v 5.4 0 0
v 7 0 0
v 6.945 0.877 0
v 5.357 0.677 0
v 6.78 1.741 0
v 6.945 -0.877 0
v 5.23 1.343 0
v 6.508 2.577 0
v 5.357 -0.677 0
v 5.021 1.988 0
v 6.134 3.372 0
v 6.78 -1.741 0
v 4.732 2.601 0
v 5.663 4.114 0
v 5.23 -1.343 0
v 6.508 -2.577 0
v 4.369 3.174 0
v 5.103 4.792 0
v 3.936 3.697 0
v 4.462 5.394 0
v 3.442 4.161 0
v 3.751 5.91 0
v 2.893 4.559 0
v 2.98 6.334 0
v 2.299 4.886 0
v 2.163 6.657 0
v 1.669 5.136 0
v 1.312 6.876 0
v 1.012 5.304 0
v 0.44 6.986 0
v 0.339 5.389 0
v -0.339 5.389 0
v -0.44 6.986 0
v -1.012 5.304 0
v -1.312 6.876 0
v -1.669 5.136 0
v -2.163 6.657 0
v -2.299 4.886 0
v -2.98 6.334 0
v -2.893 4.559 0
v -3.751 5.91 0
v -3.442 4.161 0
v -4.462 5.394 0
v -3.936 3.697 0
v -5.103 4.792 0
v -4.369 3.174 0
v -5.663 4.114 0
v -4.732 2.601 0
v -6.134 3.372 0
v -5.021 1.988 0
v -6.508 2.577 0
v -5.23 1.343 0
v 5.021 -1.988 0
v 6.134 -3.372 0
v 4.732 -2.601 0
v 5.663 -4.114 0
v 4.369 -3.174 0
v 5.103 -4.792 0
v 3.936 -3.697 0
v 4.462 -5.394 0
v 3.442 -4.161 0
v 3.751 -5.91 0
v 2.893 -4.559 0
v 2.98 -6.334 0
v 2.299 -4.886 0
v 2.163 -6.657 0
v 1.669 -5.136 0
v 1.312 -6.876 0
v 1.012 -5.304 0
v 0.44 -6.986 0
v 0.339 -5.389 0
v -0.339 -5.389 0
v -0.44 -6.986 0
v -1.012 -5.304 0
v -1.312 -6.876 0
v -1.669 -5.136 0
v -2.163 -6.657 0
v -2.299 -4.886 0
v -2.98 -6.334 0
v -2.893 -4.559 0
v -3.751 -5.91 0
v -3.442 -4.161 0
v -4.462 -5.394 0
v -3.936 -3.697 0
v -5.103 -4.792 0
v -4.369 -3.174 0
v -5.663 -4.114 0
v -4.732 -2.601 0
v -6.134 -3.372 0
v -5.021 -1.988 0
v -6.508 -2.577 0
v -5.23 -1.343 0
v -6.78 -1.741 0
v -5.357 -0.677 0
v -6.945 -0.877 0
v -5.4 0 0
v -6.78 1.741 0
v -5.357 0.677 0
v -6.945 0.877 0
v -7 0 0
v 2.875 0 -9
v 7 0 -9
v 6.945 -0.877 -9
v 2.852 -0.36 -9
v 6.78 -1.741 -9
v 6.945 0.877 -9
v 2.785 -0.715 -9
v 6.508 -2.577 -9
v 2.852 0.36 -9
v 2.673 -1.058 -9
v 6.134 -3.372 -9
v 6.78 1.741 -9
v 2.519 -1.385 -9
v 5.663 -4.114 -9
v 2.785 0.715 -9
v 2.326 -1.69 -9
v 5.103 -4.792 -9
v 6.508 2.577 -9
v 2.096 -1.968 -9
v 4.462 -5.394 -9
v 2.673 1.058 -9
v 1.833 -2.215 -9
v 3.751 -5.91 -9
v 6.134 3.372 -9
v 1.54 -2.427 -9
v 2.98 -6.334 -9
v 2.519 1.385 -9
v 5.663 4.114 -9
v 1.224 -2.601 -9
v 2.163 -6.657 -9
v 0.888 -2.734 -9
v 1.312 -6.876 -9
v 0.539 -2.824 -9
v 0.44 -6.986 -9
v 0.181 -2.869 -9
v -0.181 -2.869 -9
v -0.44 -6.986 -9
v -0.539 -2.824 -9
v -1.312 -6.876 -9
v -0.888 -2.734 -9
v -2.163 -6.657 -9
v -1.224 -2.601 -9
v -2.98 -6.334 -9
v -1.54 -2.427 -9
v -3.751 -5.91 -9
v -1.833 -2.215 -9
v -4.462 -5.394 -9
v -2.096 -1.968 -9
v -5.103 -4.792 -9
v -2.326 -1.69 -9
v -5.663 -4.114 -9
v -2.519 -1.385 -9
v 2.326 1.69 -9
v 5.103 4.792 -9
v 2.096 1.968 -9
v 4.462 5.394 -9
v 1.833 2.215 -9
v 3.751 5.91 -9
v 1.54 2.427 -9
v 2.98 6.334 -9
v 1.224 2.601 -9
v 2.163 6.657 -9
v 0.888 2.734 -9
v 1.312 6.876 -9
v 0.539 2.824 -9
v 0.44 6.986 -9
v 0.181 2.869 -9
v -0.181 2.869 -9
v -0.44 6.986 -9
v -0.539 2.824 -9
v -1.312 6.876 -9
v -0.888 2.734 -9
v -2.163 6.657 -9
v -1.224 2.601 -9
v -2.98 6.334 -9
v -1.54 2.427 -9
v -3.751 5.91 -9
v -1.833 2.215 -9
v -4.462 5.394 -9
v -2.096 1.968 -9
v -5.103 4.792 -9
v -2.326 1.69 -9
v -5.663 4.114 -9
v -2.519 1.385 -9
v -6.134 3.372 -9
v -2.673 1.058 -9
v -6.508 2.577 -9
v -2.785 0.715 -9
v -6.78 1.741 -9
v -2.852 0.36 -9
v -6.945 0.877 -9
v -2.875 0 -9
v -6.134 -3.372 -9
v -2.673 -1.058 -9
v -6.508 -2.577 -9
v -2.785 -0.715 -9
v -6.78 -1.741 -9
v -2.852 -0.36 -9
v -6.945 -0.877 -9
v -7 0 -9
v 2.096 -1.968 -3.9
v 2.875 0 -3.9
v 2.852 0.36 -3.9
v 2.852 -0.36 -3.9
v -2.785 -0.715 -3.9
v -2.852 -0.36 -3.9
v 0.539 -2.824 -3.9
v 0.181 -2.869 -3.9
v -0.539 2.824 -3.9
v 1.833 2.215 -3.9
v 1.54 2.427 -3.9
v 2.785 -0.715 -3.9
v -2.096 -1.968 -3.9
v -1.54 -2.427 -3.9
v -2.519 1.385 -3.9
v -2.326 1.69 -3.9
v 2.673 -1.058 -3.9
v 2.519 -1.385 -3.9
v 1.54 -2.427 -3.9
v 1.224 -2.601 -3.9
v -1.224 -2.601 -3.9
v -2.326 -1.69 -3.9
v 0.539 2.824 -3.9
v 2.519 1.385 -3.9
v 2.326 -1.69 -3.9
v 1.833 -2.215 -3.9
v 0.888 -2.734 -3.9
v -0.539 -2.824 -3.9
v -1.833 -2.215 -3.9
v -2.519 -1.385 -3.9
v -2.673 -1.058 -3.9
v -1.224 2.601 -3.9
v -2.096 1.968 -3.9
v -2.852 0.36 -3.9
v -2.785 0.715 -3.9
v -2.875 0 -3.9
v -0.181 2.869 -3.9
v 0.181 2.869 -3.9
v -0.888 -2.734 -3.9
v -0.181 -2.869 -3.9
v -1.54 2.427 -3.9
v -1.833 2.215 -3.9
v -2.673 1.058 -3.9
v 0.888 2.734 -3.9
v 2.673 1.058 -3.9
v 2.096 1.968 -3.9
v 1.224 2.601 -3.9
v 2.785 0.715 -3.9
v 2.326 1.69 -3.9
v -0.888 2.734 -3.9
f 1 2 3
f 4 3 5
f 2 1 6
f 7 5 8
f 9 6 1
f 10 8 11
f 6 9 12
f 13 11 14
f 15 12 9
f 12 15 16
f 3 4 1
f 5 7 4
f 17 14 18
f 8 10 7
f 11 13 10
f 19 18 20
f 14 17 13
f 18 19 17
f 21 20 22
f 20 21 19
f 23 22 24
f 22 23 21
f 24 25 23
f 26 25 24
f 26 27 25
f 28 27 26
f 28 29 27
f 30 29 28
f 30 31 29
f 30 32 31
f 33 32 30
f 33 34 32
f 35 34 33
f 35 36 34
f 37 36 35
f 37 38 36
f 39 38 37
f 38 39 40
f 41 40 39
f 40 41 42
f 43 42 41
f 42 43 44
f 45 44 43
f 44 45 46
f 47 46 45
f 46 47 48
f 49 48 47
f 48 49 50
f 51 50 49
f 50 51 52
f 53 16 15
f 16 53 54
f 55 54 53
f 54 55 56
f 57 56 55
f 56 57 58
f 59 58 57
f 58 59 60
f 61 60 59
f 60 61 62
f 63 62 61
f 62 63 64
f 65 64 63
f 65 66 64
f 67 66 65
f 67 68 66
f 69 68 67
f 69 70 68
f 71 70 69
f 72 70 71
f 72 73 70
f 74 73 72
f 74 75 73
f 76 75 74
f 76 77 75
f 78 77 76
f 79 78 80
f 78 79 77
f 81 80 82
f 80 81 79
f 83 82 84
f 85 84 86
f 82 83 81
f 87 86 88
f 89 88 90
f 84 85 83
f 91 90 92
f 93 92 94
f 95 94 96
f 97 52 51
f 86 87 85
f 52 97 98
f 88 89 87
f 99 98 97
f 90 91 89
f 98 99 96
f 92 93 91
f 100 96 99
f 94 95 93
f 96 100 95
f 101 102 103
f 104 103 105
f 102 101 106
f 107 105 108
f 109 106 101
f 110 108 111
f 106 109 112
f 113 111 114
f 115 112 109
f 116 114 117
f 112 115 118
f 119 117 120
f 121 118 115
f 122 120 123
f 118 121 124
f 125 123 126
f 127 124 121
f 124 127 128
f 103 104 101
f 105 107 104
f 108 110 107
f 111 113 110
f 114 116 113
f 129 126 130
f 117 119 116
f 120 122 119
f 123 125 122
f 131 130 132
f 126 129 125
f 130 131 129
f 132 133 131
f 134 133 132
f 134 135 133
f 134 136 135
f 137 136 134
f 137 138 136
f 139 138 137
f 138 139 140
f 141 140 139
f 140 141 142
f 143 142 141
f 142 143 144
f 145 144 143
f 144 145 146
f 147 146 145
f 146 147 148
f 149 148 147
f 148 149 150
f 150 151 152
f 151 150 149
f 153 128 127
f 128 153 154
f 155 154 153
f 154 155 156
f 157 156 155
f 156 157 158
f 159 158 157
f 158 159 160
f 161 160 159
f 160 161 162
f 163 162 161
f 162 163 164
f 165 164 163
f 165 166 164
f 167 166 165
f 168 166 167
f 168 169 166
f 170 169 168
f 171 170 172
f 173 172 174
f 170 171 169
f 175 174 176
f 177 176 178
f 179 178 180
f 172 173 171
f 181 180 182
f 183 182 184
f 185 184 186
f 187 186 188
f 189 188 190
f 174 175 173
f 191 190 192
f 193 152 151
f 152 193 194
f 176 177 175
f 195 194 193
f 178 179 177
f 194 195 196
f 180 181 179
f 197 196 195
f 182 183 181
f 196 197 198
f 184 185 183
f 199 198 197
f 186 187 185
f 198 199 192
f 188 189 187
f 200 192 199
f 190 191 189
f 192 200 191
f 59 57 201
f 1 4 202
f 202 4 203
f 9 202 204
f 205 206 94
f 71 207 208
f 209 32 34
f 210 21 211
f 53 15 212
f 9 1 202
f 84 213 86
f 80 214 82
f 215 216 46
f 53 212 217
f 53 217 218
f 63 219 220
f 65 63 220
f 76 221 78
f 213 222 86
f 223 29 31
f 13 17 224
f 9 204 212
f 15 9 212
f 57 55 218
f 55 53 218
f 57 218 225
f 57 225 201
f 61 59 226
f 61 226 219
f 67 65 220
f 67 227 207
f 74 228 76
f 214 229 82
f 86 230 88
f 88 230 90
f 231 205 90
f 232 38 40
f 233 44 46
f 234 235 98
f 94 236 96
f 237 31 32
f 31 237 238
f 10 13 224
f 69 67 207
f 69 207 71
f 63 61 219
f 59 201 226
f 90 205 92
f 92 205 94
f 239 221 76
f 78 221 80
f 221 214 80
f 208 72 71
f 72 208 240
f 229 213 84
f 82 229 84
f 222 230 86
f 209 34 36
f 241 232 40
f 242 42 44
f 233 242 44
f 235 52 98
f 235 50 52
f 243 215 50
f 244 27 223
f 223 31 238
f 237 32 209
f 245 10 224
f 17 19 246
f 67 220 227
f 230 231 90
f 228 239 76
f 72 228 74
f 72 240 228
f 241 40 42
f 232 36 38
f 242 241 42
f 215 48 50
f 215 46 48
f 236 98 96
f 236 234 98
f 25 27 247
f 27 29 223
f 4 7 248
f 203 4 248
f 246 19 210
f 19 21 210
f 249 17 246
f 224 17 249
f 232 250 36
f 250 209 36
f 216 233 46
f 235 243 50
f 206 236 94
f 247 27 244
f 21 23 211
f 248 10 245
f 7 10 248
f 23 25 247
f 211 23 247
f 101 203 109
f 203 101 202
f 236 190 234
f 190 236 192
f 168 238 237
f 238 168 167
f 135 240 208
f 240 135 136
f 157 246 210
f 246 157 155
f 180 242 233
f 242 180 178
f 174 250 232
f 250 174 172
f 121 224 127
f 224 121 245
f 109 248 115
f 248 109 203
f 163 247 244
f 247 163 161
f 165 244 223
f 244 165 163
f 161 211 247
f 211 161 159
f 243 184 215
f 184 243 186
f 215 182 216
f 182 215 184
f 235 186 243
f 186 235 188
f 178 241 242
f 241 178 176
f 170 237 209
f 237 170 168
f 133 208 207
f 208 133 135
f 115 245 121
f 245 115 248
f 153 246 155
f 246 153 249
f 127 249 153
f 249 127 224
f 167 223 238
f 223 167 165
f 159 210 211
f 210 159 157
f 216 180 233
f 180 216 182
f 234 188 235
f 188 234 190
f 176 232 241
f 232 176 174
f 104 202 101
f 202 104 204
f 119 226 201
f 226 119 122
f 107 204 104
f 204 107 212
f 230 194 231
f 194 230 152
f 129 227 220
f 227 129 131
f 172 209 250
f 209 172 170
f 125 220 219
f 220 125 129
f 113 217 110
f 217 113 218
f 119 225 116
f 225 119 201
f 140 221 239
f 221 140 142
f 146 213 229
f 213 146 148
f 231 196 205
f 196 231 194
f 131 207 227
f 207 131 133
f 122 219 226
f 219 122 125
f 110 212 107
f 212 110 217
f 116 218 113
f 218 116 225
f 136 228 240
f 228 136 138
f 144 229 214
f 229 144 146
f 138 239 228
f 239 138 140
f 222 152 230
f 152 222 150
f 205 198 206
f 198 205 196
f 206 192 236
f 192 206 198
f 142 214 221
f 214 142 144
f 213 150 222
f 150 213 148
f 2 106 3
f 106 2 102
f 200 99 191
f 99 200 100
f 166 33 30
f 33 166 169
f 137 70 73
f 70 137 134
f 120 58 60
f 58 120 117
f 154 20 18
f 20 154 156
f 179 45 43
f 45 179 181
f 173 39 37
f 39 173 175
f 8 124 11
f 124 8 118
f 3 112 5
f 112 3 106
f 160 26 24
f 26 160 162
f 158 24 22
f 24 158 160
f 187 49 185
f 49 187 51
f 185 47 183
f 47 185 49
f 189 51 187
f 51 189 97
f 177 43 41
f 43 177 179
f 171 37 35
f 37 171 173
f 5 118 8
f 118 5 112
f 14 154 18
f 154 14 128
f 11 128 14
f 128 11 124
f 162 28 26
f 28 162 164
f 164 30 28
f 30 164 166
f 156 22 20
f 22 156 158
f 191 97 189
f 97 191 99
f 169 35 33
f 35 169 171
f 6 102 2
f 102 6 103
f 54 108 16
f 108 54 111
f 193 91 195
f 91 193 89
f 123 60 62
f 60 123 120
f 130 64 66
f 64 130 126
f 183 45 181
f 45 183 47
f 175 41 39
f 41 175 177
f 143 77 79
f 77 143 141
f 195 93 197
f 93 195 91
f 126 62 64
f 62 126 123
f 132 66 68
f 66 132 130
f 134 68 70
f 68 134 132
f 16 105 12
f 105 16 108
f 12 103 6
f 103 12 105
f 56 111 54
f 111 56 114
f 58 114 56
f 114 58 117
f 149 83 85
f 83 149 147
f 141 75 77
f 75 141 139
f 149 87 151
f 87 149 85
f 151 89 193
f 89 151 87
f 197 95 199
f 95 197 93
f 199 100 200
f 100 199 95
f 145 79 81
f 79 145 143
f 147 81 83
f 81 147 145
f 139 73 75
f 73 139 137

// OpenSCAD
$fn = 50;


difference() {
	union() {
		translate(v = [0, 0, -9.0000000000]) {
			cylinder(h = 9, r = 7.0000000000);
		}
		cylinder(h = 0, r = 17.0000000000);
	}
	union() {
		translate(v = [0, 0, 0]) {
			rotate(a = [0, 0, 0]) {
				difference() {
					union() {
						#translate(v = [0, 0, -9.0000000000]) {
							cylinder(h = 9, r = 2.6000000000);
						}
						#translate(v = [0, 0, -3.9000000000]) {
							cylinder(h = 3.9000000000, r1 = 2.8750000000, r2 = 5.4000000000);
						}
						#translate(v = [0, 0, -9.0000000000]) {
							cylinder(h = 9, r = 2.8750000000);
						}
						#translate(v = [0, 0, -9.0000000000]) {
							cylinder(h = 9, r = 2.6000000000);
						}
					}
					union();
				}
			}
		}
	}
}
